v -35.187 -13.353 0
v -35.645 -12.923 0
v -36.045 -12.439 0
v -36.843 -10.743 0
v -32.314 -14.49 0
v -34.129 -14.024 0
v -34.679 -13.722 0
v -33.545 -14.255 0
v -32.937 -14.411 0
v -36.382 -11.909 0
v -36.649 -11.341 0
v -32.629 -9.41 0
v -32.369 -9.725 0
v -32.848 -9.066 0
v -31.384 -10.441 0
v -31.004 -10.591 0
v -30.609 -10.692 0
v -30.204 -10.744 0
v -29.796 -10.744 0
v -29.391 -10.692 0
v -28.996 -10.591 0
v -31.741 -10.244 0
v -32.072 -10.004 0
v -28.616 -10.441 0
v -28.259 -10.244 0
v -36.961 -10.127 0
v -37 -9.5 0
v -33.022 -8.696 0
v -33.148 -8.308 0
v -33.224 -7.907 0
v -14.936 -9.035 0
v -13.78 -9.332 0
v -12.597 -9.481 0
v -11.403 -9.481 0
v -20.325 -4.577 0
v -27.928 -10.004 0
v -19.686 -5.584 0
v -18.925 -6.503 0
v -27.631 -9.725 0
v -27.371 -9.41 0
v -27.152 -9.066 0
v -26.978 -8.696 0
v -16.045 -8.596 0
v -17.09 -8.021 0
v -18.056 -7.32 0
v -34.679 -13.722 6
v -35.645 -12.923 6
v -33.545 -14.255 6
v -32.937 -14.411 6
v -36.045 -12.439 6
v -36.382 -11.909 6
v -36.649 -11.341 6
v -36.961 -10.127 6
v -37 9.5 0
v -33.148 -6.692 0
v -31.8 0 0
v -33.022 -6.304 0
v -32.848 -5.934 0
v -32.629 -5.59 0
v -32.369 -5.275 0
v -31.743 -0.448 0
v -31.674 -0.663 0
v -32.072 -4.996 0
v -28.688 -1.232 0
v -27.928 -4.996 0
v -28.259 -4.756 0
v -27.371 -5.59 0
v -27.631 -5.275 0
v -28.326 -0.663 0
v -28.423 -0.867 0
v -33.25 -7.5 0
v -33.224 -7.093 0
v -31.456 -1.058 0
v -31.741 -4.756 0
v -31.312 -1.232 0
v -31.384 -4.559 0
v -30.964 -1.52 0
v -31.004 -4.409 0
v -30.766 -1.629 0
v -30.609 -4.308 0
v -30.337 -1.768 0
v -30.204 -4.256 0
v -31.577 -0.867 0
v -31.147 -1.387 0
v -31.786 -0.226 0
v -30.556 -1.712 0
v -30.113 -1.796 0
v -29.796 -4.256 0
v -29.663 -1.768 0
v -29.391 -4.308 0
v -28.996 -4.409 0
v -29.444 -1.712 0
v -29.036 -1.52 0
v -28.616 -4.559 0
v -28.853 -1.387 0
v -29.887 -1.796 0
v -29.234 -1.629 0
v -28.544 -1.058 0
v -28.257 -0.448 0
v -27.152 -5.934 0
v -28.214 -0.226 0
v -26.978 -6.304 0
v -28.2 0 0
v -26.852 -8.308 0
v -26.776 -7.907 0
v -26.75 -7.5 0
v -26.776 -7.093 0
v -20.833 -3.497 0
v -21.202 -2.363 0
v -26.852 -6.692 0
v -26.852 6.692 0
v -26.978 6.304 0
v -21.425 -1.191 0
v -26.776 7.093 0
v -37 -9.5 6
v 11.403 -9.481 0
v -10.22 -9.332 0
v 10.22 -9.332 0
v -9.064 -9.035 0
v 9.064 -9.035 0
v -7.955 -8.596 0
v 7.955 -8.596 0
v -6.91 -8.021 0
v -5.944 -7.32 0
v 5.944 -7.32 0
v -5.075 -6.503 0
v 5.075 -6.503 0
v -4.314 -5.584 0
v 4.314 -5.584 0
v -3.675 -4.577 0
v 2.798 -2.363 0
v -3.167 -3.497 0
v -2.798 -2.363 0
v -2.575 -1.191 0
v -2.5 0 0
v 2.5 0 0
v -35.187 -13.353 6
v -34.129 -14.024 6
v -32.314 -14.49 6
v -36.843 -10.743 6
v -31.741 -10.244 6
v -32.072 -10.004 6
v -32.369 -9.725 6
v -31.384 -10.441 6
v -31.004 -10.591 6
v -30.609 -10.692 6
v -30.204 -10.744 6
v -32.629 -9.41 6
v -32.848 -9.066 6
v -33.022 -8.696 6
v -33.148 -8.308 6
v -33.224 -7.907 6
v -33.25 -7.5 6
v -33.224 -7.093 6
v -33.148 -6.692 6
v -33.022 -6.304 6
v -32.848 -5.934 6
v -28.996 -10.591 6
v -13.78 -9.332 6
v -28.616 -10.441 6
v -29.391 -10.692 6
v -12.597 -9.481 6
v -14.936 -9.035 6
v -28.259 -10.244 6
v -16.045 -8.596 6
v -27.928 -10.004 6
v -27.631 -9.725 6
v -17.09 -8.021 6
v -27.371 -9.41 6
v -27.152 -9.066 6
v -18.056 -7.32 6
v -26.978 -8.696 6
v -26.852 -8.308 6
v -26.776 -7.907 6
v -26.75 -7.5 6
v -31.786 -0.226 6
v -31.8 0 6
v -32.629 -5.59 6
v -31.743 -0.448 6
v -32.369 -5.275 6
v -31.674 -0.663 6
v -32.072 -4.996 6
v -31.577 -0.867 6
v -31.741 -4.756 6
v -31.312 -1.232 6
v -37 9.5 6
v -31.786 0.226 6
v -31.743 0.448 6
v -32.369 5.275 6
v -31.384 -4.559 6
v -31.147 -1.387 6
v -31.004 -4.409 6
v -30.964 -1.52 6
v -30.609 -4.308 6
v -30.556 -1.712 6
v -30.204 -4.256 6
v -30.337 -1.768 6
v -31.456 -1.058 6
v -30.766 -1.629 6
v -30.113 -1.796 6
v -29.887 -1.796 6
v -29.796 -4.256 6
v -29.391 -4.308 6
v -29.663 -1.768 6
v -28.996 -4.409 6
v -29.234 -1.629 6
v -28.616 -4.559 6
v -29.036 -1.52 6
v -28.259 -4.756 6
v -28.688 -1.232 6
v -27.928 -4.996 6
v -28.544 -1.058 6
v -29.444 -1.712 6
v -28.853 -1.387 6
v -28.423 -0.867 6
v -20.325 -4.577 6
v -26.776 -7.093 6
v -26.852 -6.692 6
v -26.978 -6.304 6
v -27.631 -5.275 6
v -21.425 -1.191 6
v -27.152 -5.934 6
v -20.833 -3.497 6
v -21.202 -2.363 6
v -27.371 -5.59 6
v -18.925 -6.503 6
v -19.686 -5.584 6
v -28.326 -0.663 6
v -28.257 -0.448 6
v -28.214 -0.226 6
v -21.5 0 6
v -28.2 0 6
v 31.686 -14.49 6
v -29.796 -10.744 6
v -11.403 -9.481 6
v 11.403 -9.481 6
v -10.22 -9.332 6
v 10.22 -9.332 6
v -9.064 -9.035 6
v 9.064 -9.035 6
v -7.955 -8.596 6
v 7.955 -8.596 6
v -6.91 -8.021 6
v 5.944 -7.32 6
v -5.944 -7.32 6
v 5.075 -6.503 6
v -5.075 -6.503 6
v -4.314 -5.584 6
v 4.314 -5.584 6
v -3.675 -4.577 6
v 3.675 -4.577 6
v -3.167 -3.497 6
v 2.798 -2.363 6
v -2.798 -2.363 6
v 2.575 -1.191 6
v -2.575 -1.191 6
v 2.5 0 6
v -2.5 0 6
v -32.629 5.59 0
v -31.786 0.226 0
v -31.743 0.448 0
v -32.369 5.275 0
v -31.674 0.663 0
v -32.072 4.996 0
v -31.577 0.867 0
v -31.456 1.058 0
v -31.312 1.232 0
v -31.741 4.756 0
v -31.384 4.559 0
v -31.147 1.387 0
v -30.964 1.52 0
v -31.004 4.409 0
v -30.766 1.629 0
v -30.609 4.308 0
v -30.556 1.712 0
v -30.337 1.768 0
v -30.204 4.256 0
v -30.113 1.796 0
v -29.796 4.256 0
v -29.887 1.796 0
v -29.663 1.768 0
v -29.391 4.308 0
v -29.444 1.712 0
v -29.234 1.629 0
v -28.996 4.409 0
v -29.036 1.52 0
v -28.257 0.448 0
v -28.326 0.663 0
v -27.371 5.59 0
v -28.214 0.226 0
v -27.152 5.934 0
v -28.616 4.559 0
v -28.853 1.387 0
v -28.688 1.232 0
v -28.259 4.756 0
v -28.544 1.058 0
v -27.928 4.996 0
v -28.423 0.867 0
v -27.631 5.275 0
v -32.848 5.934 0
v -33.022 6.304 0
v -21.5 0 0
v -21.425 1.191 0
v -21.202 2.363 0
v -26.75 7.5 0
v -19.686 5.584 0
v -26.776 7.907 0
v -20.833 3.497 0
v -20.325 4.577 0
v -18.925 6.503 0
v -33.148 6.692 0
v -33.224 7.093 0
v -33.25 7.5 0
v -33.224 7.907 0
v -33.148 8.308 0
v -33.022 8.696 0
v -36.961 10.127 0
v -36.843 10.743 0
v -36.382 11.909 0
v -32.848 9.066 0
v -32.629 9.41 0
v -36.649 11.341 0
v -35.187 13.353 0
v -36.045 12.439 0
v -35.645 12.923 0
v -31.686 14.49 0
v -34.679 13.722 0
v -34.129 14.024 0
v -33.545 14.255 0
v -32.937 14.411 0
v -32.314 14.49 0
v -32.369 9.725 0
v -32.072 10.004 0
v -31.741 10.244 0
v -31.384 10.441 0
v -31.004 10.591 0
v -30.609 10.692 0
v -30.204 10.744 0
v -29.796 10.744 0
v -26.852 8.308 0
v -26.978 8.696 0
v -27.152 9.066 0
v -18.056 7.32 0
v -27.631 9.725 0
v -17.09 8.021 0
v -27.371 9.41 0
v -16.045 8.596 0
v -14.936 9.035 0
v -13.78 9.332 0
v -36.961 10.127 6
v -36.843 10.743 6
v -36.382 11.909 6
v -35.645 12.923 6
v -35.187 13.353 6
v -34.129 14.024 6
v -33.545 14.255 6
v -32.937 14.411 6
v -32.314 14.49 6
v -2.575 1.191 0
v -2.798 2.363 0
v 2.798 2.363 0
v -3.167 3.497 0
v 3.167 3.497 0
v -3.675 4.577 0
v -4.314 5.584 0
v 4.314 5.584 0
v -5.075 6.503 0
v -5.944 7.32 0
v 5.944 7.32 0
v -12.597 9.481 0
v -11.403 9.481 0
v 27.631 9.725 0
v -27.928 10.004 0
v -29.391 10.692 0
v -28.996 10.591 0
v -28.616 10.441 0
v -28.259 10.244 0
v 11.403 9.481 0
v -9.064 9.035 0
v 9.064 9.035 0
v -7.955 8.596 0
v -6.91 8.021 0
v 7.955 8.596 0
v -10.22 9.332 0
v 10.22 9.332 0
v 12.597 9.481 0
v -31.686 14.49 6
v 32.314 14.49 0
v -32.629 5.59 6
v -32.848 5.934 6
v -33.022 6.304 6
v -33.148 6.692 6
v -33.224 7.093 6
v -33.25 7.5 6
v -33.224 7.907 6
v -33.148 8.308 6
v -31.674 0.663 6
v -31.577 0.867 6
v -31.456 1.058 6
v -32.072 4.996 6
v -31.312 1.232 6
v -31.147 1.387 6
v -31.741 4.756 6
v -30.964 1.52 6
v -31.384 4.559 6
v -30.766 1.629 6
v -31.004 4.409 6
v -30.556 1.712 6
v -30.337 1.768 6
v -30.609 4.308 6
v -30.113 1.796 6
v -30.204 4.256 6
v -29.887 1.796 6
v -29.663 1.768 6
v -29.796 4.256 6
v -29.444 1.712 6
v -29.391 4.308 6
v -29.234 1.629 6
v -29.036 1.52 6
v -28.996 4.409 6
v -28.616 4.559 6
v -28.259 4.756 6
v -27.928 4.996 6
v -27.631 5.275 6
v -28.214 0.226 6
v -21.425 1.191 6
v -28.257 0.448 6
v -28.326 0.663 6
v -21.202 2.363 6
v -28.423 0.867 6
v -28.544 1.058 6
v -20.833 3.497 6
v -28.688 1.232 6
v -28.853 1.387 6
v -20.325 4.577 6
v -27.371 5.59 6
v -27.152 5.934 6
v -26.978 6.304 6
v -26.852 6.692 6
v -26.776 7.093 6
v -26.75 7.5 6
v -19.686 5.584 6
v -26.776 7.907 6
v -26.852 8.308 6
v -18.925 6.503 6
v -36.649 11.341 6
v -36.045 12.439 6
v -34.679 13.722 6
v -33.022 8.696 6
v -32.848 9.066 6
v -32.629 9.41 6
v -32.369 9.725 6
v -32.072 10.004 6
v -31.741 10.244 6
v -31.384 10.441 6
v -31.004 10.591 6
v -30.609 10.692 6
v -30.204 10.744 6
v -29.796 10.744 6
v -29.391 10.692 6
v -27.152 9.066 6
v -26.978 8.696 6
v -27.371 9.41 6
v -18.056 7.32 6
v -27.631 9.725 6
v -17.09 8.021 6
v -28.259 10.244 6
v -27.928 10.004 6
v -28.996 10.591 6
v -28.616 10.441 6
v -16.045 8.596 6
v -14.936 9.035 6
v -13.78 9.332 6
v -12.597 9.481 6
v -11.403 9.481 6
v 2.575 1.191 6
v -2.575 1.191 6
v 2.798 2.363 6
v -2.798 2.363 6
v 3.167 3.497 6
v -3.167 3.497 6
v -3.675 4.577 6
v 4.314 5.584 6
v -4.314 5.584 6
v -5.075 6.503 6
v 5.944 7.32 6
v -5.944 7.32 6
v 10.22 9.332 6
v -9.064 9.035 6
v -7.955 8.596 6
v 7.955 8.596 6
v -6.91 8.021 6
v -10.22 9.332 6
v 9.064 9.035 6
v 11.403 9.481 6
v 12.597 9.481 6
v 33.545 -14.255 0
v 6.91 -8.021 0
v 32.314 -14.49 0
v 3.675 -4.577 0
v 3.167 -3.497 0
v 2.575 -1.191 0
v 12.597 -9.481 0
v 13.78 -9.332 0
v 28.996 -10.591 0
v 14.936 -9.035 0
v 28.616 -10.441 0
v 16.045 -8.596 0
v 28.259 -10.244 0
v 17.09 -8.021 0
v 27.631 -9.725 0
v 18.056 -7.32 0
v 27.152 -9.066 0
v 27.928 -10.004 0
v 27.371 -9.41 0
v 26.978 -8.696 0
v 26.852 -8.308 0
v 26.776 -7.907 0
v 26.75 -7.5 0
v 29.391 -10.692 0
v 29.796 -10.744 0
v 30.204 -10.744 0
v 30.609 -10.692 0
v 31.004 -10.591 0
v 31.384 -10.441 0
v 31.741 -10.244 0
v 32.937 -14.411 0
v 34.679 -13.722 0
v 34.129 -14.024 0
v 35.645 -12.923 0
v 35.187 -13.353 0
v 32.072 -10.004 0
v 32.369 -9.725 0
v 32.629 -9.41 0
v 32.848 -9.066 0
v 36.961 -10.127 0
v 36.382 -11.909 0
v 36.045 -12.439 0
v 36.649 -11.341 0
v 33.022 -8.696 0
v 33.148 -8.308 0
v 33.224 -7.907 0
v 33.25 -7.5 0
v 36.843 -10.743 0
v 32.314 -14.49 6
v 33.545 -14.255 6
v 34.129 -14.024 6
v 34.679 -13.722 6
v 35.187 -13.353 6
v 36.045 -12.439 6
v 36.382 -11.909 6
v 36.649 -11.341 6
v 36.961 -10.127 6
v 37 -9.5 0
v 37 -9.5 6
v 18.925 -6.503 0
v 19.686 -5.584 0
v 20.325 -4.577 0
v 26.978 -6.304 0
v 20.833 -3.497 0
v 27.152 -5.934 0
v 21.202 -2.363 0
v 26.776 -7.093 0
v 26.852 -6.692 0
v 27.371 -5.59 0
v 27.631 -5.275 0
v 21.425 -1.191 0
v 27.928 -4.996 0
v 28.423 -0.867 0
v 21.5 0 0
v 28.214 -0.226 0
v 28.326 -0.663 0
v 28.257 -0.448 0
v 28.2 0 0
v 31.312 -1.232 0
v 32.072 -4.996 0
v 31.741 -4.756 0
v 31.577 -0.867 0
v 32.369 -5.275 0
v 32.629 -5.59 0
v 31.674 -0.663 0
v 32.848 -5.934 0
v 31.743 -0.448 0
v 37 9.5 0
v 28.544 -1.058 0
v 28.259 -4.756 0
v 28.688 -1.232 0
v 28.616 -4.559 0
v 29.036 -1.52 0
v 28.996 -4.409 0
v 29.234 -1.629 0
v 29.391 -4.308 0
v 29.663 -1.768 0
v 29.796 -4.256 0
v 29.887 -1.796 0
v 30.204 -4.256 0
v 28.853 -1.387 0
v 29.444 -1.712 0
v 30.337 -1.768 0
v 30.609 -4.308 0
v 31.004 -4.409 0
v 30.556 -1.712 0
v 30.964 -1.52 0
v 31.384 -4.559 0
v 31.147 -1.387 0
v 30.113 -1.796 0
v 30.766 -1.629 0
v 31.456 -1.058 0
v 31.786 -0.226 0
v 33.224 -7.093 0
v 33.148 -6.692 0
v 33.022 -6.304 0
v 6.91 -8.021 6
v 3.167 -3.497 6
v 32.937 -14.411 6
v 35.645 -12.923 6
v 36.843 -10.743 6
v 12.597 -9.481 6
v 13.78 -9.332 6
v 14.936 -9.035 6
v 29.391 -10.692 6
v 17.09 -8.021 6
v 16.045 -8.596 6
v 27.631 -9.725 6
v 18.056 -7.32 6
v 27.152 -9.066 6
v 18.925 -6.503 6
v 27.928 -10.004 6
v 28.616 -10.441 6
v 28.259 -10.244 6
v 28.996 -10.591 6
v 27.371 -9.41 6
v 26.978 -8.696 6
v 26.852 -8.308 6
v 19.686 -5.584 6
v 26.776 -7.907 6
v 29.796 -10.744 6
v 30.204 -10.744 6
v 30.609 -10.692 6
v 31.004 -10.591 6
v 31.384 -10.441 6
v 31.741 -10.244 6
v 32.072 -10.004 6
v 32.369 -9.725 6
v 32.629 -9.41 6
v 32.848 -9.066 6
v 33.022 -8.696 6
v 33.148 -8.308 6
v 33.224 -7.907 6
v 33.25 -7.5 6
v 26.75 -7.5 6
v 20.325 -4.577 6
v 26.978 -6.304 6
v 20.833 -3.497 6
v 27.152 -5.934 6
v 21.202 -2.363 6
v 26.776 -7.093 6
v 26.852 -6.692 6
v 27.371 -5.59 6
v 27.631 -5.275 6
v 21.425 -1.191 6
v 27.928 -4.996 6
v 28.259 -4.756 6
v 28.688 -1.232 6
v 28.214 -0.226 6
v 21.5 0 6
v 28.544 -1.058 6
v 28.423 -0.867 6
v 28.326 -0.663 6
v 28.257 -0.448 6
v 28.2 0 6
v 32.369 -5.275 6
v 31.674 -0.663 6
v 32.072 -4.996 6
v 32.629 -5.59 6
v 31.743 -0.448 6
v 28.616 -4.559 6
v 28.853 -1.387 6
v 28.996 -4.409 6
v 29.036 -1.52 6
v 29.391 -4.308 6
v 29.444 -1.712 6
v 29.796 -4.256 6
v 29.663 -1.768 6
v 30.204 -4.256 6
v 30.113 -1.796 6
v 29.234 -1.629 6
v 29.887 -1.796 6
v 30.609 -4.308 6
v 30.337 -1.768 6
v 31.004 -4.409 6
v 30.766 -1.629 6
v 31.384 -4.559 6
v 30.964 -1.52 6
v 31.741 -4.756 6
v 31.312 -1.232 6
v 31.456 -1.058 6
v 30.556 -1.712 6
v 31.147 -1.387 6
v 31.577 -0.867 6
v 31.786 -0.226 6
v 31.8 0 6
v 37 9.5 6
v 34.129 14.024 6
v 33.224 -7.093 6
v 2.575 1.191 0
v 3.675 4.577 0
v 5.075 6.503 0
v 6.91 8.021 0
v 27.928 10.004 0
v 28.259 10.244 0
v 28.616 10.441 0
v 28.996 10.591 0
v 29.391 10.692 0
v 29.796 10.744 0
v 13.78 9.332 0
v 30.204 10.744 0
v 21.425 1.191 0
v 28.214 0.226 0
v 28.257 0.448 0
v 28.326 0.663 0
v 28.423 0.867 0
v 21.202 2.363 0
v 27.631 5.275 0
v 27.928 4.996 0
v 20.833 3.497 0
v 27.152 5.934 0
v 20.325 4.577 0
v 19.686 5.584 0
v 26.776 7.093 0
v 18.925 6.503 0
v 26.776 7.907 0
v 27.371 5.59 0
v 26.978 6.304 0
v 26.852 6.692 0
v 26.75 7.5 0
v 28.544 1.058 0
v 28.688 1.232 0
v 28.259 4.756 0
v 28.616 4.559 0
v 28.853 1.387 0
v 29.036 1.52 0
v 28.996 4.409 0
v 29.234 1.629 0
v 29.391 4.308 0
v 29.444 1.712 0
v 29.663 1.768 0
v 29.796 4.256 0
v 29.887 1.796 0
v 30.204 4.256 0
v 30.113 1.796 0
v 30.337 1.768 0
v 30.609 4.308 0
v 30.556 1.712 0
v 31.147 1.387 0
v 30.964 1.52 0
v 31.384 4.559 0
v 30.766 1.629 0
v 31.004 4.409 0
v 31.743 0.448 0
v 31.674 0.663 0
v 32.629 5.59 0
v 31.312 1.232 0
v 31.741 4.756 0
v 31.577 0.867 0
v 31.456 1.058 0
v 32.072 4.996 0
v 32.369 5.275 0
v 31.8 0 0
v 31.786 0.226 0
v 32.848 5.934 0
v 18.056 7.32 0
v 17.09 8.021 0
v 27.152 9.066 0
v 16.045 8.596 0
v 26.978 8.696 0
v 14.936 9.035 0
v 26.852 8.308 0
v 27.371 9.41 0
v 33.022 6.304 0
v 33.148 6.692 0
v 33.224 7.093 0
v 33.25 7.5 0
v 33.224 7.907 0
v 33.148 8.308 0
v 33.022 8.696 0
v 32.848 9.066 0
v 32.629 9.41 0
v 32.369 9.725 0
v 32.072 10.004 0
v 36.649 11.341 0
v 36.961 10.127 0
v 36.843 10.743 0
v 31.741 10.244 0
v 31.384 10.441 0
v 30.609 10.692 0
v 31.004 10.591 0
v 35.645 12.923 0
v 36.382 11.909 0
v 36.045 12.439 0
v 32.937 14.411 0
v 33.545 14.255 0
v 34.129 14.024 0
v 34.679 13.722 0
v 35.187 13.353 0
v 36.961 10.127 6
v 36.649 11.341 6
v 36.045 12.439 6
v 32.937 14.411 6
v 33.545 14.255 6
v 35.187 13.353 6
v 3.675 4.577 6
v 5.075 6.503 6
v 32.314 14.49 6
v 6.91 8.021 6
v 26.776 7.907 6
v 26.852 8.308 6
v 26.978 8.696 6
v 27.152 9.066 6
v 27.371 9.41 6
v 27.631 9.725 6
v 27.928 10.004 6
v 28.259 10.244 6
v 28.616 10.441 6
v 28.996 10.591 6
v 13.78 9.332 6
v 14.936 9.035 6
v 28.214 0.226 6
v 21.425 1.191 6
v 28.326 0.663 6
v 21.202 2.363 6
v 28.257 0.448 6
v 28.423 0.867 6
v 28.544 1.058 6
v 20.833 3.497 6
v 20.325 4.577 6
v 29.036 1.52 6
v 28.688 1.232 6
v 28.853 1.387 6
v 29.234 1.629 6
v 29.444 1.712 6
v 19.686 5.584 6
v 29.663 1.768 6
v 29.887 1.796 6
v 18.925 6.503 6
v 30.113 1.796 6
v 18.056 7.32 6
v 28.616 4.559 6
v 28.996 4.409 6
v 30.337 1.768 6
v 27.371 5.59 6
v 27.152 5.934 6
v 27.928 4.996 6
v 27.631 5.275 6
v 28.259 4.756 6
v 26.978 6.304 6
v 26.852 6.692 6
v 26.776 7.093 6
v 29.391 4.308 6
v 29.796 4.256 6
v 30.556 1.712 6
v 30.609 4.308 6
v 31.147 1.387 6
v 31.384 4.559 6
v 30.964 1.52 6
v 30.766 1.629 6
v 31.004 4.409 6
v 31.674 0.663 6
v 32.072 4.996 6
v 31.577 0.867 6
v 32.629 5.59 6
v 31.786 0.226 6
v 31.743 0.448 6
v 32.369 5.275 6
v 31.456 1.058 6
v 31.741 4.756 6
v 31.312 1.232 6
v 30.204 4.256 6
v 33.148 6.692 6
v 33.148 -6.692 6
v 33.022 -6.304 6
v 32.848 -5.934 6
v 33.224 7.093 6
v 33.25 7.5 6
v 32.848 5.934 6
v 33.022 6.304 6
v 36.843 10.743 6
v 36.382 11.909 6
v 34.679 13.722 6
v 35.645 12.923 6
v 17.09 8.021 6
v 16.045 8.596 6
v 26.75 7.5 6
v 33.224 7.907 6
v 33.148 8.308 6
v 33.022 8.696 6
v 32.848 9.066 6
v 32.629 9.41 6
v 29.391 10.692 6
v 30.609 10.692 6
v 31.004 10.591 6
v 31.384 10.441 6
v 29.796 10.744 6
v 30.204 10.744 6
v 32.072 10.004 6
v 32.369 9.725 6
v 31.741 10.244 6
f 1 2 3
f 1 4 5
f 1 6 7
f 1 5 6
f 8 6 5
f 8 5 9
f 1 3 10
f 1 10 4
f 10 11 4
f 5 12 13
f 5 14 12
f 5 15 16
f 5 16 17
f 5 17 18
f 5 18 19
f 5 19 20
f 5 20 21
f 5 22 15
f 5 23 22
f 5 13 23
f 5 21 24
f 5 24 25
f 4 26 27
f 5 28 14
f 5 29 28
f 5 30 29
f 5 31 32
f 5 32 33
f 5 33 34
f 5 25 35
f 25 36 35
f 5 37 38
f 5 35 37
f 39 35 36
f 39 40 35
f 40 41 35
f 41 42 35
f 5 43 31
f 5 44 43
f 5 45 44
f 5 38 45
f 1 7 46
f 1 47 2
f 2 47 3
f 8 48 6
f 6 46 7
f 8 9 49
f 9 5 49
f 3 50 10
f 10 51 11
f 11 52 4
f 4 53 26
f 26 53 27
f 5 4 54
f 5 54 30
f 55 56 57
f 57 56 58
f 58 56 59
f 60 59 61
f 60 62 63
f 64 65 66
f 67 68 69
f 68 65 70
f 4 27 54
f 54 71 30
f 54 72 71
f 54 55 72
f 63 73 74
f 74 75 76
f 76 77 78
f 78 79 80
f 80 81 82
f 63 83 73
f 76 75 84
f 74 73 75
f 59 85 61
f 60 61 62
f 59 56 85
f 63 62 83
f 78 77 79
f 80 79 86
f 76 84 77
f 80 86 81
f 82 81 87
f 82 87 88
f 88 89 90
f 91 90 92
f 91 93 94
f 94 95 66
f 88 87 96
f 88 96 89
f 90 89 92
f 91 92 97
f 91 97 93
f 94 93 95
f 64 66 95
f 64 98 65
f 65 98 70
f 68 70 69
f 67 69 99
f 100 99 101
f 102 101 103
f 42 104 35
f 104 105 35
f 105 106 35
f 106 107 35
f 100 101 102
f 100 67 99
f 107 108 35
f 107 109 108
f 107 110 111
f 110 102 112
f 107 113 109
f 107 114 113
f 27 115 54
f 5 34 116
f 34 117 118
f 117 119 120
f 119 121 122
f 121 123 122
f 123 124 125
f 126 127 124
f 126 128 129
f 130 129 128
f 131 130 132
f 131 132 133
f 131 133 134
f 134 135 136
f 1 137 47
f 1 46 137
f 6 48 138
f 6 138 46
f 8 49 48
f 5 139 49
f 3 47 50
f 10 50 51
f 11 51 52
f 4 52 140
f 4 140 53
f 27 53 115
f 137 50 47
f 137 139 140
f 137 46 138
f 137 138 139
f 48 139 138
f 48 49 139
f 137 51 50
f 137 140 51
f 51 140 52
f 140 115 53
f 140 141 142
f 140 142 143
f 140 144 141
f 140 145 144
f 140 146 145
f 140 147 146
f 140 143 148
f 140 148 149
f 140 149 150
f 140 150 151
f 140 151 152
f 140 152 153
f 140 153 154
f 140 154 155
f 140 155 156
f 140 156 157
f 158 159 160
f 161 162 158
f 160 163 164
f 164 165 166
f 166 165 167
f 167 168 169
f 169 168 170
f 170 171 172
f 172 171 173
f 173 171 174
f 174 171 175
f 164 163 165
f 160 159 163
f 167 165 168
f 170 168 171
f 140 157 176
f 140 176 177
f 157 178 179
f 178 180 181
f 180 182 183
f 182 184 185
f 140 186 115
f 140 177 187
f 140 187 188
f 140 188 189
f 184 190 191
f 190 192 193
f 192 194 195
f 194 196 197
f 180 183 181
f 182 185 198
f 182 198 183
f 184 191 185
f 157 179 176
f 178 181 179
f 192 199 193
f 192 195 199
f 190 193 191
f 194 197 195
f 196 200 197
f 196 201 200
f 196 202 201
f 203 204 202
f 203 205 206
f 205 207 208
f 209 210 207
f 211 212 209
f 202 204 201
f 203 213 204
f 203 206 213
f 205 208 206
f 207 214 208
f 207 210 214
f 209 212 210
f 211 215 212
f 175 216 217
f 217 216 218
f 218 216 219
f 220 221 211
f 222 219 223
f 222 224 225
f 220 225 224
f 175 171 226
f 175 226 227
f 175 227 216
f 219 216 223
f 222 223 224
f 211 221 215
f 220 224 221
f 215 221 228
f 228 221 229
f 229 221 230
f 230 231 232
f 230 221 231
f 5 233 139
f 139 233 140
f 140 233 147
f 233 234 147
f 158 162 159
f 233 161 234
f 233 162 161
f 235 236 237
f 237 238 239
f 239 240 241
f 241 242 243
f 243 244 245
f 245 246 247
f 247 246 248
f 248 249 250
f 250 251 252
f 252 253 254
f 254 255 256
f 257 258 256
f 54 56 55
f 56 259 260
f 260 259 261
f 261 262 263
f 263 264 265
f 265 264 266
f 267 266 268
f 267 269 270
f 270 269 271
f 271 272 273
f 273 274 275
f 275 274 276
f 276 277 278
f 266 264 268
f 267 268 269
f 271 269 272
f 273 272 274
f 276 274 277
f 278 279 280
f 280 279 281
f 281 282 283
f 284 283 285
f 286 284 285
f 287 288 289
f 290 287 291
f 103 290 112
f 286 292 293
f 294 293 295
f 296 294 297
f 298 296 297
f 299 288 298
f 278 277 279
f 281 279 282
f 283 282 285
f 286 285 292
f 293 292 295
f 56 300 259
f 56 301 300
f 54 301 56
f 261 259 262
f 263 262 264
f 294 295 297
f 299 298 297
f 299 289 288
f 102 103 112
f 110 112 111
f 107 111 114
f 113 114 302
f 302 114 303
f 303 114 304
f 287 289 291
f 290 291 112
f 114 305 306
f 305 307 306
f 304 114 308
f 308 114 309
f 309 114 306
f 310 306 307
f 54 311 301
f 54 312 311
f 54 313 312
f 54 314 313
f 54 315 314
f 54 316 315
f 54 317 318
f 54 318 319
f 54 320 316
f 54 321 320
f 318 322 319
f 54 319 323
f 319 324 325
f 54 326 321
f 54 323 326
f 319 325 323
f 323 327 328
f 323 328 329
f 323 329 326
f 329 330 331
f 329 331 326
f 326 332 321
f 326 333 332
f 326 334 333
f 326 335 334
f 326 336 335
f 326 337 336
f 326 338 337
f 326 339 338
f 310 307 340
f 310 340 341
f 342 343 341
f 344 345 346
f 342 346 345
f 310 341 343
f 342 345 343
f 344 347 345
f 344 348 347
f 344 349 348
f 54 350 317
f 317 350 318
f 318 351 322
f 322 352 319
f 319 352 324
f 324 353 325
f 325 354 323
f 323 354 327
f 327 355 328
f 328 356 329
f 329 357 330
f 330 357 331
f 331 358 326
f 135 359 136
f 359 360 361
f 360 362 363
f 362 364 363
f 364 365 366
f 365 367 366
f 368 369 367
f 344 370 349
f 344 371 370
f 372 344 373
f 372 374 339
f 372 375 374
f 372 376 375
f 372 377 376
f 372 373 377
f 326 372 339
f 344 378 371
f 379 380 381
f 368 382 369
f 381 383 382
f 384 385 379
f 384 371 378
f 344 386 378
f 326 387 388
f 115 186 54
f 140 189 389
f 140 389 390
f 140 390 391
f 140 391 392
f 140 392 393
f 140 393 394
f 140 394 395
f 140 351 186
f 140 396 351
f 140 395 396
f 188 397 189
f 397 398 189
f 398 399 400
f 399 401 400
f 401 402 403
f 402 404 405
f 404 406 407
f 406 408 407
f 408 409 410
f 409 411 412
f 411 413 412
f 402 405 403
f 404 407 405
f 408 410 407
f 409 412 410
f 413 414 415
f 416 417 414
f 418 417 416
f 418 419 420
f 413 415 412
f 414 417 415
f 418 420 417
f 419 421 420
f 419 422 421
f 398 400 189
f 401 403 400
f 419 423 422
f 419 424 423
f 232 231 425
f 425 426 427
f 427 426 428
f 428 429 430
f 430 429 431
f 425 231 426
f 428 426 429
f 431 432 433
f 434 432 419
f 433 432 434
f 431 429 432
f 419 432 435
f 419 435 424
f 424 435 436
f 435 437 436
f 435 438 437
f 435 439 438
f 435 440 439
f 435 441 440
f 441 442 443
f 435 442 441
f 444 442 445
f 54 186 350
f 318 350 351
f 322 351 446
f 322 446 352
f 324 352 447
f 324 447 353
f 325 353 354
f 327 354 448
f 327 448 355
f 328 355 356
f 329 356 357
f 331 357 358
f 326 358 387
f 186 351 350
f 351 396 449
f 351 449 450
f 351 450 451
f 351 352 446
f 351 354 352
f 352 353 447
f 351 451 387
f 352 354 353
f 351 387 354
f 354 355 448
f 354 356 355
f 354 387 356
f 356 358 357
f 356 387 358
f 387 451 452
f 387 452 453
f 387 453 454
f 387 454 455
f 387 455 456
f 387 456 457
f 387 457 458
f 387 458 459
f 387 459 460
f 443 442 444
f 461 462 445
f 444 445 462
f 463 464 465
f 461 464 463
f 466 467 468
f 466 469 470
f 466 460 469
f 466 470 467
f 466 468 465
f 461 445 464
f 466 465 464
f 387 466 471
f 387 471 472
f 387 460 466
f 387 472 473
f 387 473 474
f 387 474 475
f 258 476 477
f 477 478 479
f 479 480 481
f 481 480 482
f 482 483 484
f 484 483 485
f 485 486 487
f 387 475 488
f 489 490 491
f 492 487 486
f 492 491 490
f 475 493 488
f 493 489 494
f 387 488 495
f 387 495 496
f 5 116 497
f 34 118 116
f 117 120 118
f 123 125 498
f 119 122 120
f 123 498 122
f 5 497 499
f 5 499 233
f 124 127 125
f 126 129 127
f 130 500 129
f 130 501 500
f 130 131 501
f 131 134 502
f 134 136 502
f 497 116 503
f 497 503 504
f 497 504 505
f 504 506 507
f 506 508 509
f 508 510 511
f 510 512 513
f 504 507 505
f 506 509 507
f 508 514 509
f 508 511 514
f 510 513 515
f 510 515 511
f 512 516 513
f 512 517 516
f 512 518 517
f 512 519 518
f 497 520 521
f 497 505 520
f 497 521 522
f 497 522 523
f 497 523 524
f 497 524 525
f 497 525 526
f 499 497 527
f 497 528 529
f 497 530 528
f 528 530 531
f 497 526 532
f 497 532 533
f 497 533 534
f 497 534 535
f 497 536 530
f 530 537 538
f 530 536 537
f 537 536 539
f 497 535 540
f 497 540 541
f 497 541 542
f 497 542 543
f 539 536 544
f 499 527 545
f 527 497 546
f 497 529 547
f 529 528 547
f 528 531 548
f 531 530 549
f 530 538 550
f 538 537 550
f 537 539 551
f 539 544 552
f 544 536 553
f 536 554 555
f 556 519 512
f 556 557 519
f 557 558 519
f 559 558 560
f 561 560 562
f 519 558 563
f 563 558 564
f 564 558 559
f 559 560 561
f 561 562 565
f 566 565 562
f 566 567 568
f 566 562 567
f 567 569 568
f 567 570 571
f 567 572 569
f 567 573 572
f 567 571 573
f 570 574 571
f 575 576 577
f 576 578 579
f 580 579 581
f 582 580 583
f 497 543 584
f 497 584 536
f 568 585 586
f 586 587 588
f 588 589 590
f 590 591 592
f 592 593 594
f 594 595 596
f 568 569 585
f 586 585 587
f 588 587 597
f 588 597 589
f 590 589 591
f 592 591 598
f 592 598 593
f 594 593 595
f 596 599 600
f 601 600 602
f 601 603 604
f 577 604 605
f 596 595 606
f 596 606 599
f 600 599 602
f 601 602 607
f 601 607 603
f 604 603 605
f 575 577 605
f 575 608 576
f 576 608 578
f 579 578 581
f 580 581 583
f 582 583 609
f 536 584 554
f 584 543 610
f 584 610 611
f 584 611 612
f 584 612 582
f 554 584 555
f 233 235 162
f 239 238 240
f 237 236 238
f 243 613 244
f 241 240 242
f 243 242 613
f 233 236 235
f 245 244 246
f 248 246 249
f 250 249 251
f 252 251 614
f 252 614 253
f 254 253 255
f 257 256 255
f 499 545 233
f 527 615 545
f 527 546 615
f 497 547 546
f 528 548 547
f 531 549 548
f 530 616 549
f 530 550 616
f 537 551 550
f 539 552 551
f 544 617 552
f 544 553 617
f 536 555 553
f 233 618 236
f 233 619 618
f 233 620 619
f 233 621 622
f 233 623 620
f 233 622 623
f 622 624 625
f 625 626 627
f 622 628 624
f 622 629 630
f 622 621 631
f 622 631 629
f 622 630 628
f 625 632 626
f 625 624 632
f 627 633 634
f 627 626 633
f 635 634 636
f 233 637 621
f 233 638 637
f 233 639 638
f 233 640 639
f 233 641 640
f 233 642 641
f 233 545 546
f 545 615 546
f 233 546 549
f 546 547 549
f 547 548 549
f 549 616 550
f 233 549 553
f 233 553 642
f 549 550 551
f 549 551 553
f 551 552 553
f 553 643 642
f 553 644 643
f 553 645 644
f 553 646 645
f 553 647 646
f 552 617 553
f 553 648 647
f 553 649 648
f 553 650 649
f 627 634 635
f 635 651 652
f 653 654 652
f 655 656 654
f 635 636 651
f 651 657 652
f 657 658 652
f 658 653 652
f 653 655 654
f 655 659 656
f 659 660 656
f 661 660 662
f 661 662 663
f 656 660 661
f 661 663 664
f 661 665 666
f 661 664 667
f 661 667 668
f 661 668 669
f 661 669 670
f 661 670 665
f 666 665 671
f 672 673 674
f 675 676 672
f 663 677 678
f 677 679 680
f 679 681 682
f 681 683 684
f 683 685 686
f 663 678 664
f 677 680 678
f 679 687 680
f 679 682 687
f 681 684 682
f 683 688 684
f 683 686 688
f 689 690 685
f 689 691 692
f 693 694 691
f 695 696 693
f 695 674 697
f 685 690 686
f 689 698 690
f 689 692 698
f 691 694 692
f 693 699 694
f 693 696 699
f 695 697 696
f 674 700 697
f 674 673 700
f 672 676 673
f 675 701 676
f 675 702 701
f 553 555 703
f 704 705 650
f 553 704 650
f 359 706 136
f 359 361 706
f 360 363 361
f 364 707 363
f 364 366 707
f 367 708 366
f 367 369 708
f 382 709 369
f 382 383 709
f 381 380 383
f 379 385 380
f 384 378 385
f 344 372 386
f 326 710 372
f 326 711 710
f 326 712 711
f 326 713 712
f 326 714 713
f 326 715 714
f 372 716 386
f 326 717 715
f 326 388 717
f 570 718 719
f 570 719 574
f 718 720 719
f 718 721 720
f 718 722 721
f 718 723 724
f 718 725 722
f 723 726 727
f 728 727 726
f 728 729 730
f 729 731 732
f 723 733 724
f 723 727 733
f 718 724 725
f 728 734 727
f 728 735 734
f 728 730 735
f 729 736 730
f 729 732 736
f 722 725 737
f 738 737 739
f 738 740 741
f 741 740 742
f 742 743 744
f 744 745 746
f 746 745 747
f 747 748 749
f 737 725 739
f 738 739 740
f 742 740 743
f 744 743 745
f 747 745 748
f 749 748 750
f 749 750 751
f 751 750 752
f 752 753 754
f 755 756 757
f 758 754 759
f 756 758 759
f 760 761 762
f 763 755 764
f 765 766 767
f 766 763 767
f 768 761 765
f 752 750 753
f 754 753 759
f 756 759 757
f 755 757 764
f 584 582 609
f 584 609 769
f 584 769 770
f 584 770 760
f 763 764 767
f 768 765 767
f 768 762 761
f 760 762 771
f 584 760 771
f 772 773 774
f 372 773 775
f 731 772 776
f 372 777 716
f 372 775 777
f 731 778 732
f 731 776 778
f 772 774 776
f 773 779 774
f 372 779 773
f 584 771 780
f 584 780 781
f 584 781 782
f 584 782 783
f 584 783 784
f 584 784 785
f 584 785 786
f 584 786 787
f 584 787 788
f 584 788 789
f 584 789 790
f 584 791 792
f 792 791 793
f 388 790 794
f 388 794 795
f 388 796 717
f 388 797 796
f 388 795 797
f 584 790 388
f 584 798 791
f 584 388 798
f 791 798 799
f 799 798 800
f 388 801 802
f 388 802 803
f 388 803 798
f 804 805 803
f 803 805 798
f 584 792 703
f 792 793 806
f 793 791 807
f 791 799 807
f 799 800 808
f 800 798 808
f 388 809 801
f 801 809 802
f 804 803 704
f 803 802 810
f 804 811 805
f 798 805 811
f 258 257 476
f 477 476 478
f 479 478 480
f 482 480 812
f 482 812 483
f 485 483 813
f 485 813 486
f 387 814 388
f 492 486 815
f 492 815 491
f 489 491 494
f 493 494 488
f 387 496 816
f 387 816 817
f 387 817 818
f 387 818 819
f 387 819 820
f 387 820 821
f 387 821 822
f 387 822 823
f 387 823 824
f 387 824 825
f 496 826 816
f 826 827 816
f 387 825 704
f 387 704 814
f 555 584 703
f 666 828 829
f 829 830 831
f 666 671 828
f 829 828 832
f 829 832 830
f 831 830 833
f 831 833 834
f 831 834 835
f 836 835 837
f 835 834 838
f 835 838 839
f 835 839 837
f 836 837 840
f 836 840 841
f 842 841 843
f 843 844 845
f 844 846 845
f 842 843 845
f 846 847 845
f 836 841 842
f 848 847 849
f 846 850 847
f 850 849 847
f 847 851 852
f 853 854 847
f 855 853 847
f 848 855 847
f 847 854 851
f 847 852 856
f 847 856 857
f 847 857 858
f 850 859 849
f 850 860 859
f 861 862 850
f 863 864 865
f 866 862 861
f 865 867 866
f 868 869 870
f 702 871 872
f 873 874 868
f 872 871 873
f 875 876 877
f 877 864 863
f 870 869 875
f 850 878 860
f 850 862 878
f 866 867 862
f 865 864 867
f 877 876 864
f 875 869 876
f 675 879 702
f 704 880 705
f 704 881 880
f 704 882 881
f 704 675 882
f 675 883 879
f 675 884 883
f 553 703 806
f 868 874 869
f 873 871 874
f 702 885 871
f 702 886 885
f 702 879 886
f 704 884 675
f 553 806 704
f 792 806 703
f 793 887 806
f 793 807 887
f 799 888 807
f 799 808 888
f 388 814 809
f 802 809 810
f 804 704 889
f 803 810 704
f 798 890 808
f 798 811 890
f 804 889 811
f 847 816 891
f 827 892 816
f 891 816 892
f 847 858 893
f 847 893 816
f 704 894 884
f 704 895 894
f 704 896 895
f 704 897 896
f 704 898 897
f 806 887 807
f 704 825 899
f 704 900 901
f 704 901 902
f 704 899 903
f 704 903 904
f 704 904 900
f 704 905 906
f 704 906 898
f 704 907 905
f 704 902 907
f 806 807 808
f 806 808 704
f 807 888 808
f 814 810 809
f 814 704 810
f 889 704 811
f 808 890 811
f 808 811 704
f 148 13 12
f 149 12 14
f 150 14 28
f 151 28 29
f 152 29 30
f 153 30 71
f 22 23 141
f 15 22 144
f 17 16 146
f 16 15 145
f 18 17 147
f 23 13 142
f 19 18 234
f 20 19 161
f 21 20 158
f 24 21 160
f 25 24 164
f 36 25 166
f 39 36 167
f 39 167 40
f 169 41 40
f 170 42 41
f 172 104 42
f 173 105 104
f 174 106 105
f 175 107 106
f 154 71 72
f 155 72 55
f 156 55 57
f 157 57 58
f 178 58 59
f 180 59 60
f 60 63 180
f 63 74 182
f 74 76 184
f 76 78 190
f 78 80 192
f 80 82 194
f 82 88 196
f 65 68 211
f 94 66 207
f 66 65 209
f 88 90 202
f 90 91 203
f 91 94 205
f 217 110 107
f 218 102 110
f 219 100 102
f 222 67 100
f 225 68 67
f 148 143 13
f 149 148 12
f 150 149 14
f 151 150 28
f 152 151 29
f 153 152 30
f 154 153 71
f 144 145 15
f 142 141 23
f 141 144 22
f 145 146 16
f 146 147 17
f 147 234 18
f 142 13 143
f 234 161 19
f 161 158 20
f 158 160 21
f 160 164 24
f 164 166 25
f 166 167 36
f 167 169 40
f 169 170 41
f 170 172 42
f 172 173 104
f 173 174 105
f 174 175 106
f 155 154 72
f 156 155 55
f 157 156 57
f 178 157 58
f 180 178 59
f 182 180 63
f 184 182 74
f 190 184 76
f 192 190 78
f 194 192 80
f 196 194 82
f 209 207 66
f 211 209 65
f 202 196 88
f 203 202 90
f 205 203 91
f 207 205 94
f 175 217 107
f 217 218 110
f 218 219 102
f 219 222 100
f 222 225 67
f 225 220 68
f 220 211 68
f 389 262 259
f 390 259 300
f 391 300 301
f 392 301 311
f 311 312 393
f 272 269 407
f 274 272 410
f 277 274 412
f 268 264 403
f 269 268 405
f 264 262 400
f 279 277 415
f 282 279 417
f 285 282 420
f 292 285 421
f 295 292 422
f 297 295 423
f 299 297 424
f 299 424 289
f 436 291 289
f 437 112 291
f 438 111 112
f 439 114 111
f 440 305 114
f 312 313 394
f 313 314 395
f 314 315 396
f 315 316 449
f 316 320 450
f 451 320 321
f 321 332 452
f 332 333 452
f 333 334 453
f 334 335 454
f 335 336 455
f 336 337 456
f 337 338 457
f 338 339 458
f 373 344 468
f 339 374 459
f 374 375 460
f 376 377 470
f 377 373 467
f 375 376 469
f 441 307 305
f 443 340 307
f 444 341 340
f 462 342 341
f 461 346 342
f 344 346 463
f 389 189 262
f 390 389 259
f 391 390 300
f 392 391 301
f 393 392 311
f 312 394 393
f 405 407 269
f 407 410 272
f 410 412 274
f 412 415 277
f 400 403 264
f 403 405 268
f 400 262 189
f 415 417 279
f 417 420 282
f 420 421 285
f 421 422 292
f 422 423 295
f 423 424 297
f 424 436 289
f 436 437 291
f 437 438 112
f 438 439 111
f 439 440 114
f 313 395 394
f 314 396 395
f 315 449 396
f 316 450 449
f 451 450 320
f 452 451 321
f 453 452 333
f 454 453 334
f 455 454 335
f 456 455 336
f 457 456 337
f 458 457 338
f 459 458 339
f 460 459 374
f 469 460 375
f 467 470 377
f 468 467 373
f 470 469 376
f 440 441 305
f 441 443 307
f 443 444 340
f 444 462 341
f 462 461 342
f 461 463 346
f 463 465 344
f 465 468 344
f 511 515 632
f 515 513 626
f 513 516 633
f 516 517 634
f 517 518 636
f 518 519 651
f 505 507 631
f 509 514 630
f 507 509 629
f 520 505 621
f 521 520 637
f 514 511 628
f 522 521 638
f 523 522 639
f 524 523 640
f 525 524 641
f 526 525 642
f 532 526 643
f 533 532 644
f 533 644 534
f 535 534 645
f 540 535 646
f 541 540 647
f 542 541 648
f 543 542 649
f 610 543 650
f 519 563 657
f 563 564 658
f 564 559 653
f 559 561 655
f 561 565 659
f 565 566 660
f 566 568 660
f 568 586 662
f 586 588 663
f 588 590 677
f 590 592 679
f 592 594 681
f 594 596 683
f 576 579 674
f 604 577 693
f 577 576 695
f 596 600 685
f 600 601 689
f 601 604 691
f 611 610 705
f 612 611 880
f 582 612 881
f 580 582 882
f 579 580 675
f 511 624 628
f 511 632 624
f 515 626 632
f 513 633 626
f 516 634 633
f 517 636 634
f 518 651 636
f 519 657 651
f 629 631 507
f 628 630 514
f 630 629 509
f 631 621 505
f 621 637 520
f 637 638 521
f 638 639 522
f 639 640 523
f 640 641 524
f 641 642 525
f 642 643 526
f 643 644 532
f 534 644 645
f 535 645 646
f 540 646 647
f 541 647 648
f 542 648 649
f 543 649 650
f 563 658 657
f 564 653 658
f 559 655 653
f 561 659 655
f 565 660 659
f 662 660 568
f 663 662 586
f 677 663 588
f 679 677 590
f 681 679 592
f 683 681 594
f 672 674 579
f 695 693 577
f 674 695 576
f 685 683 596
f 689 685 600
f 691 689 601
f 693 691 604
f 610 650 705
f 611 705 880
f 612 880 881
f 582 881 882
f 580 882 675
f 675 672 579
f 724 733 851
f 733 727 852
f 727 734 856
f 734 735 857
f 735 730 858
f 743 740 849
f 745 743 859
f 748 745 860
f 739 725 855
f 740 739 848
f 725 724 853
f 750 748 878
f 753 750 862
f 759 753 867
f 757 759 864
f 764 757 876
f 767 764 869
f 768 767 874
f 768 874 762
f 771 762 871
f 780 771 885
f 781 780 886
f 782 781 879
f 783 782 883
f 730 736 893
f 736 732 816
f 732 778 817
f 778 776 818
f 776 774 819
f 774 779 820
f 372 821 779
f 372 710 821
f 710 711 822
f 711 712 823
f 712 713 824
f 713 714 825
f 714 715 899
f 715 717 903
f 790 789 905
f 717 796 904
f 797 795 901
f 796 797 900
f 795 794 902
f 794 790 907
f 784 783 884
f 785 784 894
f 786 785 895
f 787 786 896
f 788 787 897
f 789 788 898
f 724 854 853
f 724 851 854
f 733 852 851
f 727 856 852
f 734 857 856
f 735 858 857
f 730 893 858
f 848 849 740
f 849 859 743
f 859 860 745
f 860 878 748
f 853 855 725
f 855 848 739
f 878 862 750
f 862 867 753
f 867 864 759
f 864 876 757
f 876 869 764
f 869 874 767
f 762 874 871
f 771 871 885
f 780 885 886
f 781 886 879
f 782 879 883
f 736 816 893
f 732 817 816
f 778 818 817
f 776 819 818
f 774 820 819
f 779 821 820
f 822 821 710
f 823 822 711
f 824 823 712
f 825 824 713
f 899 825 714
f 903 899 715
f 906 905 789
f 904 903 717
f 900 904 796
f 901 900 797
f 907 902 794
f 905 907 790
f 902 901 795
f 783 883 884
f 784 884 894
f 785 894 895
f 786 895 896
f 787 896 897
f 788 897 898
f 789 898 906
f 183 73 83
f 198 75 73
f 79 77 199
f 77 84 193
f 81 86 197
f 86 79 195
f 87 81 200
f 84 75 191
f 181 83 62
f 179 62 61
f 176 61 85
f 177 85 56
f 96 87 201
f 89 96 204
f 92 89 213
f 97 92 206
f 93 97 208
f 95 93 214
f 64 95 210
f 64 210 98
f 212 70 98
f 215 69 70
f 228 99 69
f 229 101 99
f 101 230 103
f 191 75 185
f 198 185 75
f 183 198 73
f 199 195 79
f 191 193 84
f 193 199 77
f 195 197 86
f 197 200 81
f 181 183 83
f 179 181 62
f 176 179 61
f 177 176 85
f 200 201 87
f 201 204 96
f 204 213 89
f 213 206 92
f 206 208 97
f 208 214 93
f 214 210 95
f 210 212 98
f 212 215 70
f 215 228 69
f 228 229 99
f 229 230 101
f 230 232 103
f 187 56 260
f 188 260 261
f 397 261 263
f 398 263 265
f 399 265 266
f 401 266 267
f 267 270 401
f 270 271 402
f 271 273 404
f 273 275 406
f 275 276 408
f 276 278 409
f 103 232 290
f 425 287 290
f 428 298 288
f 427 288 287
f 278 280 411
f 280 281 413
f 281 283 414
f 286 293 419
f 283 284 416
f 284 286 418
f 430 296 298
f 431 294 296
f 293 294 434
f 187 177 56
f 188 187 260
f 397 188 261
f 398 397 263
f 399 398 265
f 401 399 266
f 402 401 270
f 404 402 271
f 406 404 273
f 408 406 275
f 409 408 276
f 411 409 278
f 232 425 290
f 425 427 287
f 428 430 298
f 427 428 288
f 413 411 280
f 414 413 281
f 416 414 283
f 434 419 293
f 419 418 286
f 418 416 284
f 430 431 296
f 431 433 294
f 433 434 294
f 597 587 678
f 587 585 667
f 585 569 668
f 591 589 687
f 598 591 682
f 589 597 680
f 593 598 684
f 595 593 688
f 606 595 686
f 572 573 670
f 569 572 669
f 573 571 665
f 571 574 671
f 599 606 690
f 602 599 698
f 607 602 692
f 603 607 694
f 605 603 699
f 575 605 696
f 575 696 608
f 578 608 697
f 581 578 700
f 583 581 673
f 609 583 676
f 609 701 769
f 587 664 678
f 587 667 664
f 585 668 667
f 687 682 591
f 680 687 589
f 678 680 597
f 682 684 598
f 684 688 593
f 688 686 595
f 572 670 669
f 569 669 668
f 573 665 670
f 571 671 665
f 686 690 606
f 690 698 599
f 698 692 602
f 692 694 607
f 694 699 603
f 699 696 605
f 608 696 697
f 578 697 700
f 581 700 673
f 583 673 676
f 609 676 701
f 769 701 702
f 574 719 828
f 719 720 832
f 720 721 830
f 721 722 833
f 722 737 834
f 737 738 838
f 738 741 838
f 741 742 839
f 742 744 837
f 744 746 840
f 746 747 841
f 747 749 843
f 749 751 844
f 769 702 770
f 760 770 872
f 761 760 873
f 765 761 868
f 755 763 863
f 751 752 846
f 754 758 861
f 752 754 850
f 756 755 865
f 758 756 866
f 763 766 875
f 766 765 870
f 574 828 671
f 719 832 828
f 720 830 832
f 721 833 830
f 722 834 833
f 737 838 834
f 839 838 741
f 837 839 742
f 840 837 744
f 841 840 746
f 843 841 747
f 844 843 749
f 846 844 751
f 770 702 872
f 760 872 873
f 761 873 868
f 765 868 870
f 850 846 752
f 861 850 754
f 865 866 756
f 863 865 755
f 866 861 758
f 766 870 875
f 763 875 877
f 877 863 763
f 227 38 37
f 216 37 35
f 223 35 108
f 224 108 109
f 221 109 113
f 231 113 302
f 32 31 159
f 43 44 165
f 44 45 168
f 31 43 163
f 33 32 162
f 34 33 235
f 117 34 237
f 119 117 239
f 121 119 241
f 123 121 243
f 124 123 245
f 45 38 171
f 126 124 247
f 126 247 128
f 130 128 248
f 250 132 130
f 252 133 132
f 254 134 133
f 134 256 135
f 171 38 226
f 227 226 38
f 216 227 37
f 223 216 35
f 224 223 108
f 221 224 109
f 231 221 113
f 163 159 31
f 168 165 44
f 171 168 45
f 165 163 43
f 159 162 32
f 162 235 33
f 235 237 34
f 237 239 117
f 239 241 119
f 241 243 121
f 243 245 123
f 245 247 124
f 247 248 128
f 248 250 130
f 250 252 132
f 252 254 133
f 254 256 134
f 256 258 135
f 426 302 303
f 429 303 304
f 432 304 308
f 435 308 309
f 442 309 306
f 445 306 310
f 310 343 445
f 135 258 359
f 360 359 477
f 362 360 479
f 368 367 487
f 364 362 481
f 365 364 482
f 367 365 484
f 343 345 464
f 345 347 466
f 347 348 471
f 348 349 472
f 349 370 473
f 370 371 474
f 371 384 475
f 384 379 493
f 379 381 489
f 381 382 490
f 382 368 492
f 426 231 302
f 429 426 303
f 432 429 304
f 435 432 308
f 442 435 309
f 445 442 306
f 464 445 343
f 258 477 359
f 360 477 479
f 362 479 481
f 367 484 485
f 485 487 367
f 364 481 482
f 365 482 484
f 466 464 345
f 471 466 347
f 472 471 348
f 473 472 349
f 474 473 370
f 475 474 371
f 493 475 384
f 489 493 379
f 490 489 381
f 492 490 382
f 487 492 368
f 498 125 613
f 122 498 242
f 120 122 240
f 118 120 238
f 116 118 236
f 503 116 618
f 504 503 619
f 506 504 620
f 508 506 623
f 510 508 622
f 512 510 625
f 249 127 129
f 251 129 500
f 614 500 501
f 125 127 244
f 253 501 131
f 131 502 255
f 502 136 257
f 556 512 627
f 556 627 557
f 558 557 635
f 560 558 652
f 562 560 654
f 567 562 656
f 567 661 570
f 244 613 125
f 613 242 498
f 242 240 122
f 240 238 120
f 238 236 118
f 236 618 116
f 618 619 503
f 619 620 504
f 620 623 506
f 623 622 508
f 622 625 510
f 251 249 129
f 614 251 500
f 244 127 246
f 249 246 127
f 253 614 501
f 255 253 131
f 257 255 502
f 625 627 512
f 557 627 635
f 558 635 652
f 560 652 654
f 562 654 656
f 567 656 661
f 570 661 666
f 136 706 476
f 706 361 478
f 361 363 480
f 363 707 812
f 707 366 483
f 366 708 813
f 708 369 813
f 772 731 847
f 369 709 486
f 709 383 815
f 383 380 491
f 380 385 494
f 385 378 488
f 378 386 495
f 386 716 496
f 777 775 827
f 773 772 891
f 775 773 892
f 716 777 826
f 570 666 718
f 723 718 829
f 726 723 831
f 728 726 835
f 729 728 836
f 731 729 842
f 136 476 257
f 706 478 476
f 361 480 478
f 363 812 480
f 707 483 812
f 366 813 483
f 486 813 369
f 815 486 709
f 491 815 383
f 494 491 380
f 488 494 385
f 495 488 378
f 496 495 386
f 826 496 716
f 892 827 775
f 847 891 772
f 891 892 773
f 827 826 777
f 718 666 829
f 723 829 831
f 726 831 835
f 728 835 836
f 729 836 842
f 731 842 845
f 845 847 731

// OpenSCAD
$fn = 50;

difference() {
	union() {
		hull() {
			translate(v = [-32.0, 9.5, 0]) {
				cylinder(h = 6, r = 5);
			}
			translate(v = [32.0, 9.5, 0]) {
				cylinder(h = 6, r = 5);
			}
			translate(v = [-32.0, -9.5, 0]) {
				cylinder(h = 6, r = 5);
			}
			translate(v = [32.0, -9.5, 0]) {
				cylinder(h = 6, r = 5);
			}
		}
	}
	union() {
		translate(v = [-30.0, -7.5, 0]) {
			cylinder(h = 6, r = 3.25);
		}
		translate(v = [-30.0, 7.5, 0]) {
			cylinder(h = 6, r = 3.25);
		}
		translate(v = [30.0, -7.5, 0]) {
			cylinder(h = 6, r = 3.25);
		}
		translate(v = [30.0, 7.5, 0]) {
			cylinder(h = 6, r = 3.25);
		}
		translate(v = [-30.0, 0.0, 0]) {
			cylinder(h = 6, r = 1.8);
		}
		translate(v = [30.0, 0.0, 0]) {
			cylinder(h = 6, r = 1.8);
		}
		translate(v = [-12.0, 0, 0.0]) {
			cylinder(h = 6, r = 9.5);
		}
		translate(v = [12.0, 0, 0.0]) {
			cylinder(h = 6, r = 9.5);
		}
	}
}
